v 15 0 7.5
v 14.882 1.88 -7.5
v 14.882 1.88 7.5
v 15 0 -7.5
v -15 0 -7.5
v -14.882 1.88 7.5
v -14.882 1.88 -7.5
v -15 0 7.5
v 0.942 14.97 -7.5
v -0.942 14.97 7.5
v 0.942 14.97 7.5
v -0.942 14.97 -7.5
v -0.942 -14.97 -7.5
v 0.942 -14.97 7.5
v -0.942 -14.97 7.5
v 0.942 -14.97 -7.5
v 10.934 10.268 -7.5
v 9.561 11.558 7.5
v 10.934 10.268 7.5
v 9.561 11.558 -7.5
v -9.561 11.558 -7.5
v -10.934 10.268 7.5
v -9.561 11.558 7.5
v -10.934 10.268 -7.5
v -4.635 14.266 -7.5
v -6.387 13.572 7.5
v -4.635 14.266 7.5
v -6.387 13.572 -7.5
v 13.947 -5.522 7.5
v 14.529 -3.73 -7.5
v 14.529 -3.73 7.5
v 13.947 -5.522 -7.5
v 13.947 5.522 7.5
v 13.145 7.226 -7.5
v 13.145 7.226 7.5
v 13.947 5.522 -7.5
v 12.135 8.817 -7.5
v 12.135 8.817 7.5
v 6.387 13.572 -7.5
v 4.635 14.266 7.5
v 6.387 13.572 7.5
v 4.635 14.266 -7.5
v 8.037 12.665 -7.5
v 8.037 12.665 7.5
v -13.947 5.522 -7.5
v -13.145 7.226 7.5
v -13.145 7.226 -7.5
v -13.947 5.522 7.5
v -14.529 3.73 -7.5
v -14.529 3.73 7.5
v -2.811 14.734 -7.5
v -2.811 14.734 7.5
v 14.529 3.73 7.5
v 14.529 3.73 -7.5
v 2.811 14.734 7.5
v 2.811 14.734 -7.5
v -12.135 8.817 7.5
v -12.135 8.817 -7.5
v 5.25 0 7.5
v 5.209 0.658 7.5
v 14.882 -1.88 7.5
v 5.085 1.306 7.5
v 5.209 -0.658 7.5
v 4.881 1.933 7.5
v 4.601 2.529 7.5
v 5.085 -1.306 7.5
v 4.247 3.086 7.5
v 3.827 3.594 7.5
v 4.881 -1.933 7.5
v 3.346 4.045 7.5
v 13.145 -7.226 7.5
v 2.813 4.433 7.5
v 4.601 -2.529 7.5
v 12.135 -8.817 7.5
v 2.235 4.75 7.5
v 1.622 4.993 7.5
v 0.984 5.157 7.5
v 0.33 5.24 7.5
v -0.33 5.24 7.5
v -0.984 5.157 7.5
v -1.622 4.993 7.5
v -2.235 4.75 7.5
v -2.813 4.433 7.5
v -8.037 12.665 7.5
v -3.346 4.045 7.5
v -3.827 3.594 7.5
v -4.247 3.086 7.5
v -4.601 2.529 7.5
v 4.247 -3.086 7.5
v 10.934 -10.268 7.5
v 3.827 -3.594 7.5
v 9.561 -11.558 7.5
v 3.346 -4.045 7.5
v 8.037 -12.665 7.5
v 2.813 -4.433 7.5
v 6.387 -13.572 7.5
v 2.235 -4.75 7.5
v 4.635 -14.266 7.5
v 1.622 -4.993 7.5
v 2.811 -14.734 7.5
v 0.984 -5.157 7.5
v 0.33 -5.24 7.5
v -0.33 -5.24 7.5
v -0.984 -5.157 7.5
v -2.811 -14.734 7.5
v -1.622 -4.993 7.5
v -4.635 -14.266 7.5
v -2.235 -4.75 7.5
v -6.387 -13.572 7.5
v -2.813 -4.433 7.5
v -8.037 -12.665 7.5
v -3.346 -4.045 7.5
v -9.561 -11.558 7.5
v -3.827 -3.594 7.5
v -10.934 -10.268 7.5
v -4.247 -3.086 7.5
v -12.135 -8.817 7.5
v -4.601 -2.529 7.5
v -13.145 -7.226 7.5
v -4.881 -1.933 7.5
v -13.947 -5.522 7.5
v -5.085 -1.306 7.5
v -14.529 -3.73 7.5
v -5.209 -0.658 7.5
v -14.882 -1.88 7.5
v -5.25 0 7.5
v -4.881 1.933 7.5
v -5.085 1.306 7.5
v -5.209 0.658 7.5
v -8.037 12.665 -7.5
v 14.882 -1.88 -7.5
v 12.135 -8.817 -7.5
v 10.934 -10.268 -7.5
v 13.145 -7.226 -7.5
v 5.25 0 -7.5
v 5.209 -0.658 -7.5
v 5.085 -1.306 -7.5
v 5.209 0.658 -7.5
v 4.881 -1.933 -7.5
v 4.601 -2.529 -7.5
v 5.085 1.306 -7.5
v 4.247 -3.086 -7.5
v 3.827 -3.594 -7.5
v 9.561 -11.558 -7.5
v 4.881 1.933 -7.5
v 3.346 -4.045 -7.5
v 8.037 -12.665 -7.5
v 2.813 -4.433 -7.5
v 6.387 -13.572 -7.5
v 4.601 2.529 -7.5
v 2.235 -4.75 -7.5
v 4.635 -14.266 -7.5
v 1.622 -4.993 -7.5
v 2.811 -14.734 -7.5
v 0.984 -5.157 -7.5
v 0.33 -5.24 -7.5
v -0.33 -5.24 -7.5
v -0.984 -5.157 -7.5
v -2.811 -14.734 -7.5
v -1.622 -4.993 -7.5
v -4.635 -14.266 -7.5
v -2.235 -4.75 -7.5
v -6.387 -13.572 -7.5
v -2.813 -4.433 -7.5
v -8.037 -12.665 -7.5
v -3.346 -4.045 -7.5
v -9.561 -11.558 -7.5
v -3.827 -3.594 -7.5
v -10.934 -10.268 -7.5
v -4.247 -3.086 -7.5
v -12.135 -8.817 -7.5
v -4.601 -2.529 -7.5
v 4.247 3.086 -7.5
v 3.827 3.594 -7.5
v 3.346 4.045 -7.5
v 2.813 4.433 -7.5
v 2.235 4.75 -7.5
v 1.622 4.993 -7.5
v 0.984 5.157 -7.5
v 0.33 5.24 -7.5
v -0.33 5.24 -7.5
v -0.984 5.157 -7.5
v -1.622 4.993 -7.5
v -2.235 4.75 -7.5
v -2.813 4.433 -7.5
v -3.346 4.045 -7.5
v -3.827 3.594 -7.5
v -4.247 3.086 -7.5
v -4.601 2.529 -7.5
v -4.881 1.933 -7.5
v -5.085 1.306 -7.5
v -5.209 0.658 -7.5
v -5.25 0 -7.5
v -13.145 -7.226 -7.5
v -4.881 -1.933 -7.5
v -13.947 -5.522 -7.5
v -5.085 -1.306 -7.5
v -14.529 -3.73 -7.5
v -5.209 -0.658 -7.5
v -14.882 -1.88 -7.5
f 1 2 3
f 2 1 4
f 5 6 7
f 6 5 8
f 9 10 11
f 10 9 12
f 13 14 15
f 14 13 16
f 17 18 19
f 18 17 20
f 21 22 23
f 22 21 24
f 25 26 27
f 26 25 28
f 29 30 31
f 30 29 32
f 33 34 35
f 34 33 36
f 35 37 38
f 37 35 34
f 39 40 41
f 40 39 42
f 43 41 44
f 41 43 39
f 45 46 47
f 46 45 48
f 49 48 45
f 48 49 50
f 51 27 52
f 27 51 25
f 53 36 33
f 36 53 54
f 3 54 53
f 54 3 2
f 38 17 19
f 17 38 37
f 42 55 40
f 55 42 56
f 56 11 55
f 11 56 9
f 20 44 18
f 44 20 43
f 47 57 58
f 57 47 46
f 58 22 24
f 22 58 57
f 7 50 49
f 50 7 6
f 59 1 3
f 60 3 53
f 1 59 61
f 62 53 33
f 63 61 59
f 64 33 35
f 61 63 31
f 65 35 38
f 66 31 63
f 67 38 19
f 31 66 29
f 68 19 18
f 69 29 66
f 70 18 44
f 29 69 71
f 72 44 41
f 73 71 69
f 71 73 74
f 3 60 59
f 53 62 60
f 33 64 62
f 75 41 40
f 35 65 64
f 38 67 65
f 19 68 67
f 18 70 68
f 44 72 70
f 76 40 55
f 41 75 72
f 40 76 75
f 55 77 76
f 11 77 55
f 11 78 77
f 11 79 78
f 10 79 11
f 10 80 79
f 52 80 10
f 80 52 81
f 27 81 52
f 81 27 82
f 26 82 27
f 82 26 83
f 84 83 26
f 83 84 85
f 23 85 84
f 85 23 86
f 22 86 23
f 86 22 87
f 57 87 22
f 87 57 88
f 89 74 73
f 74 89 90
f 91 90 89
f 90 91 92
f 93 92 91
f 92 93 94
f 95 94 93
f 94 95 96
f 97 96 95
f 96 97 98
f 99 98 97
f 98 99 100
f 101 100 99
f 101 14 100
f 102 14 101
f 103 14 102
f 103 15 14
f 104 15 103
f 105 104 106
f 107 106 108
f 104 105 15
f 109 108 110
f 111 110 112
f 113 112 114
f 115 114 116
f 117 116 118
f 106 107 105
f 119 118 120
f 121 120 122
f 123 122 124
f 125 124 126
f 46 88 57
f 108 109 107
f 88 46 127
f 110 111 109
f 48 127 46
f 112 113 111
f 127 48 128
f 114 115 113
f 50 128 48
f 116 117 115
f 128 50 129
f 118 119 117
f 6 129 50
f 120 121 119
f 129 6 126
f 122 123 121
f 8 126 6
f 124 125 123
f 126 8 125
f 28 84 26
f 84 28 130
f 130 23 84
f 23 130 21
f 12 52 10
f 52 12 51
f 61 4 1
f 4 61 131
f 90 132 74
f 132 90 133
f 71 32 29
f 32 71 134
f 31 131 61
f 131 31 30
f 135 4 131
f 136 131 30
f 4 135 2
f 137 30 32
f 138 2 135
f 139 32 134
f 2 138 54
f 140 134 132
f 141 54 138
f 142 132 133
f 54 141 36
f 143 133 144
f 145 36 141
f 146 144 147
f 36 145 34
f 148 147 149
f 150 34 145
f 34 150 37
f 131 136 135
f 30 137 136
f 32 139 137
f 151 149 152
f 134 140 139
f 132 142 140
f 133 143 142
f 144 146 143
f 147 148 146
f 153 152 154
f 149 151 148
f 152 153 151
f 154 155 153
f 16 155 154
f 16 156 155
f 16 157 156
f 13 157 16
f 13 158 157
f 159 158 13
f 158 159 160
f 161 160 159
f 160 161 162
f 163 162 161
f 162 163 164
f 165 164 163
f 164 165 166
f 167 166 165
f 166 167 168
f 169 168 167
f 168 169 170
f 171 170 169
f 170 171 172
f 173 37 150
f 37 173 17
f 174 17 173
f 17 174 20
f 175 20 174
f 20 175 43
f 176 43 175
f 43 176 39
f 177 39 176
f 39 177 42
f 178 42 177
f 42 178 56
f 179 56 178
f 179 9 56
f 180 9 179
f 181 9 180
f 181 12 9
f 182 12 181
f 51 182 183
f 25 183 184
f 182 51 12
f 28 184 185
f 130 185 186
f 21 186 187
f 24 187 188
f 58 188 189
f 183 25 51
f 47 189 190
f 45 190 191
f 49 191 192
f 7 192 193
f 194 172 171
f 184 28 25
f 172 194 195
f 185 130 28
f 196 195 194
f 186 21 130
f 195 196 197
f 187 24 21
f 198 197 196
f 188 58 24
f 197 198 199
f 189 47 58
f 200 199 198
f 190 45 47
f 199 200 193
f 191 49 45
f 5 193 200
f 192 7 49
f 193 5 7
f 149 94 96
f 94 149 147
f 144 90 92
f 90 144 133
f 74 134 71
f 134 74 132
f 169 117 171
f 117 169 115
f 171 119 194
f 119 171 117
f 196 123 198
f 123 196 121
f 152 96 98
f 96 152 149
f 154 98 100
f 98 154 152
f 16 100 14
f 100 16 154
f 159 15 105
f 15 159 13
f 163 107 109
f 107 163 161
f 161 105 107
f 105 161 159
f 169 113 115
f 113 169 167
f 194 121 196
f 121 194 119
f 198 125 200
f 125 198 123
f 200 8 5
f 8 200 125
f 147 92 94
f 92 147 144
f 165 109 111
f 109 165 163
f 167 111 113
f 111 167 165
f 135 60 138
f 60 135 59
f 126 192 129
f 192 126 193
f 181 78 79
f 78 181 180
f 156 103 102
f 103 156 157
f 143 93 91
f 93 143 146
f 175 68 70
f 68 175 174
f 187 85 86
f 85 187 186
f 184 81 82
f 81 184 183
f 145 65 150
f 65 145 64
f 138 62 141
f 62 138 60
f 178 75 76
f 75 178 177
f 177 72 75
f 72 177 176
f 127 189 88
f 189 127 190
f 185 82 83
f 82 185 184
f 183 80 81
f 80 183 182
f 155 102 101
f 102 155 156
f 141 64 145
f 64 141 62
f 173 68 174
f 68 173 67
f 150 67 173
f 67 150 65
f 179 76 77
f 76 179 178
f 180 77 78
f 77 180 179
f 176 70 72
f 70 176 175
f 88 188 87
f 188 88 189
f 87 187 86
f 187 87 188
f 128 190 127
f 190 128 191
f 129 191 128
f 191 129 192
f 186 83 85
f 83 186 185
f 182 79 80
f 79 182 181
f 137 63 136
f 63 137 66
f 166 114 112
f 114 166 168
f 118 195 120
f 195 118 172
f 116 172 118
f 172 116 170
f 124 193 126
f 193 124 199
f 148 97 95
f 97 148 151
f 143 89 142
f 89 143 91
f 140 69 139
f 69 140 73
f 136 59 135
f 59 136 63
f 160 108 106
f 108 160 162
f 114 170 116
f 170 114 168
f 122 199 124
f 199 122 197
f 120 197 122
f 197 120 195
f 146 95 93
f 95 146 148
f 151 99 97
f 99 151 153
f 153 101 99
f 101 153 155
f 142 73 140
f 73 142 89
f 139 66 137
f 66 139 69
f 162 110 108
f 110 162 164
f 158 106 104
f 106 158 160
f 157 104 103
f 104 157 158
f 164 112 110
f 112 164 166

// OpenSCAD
$fn = 50;


difference() {
	union() {
		translate(v = [0, 0, -7.5000000000]) {
			cylinder(h = 15, r = 15.0000000000);
		}
	}
	union() {
		translate(v = [0, 0, -100.0000000000]) {
			cylinder(h = 200, r = 5.2500000000);
		}
	}
}
